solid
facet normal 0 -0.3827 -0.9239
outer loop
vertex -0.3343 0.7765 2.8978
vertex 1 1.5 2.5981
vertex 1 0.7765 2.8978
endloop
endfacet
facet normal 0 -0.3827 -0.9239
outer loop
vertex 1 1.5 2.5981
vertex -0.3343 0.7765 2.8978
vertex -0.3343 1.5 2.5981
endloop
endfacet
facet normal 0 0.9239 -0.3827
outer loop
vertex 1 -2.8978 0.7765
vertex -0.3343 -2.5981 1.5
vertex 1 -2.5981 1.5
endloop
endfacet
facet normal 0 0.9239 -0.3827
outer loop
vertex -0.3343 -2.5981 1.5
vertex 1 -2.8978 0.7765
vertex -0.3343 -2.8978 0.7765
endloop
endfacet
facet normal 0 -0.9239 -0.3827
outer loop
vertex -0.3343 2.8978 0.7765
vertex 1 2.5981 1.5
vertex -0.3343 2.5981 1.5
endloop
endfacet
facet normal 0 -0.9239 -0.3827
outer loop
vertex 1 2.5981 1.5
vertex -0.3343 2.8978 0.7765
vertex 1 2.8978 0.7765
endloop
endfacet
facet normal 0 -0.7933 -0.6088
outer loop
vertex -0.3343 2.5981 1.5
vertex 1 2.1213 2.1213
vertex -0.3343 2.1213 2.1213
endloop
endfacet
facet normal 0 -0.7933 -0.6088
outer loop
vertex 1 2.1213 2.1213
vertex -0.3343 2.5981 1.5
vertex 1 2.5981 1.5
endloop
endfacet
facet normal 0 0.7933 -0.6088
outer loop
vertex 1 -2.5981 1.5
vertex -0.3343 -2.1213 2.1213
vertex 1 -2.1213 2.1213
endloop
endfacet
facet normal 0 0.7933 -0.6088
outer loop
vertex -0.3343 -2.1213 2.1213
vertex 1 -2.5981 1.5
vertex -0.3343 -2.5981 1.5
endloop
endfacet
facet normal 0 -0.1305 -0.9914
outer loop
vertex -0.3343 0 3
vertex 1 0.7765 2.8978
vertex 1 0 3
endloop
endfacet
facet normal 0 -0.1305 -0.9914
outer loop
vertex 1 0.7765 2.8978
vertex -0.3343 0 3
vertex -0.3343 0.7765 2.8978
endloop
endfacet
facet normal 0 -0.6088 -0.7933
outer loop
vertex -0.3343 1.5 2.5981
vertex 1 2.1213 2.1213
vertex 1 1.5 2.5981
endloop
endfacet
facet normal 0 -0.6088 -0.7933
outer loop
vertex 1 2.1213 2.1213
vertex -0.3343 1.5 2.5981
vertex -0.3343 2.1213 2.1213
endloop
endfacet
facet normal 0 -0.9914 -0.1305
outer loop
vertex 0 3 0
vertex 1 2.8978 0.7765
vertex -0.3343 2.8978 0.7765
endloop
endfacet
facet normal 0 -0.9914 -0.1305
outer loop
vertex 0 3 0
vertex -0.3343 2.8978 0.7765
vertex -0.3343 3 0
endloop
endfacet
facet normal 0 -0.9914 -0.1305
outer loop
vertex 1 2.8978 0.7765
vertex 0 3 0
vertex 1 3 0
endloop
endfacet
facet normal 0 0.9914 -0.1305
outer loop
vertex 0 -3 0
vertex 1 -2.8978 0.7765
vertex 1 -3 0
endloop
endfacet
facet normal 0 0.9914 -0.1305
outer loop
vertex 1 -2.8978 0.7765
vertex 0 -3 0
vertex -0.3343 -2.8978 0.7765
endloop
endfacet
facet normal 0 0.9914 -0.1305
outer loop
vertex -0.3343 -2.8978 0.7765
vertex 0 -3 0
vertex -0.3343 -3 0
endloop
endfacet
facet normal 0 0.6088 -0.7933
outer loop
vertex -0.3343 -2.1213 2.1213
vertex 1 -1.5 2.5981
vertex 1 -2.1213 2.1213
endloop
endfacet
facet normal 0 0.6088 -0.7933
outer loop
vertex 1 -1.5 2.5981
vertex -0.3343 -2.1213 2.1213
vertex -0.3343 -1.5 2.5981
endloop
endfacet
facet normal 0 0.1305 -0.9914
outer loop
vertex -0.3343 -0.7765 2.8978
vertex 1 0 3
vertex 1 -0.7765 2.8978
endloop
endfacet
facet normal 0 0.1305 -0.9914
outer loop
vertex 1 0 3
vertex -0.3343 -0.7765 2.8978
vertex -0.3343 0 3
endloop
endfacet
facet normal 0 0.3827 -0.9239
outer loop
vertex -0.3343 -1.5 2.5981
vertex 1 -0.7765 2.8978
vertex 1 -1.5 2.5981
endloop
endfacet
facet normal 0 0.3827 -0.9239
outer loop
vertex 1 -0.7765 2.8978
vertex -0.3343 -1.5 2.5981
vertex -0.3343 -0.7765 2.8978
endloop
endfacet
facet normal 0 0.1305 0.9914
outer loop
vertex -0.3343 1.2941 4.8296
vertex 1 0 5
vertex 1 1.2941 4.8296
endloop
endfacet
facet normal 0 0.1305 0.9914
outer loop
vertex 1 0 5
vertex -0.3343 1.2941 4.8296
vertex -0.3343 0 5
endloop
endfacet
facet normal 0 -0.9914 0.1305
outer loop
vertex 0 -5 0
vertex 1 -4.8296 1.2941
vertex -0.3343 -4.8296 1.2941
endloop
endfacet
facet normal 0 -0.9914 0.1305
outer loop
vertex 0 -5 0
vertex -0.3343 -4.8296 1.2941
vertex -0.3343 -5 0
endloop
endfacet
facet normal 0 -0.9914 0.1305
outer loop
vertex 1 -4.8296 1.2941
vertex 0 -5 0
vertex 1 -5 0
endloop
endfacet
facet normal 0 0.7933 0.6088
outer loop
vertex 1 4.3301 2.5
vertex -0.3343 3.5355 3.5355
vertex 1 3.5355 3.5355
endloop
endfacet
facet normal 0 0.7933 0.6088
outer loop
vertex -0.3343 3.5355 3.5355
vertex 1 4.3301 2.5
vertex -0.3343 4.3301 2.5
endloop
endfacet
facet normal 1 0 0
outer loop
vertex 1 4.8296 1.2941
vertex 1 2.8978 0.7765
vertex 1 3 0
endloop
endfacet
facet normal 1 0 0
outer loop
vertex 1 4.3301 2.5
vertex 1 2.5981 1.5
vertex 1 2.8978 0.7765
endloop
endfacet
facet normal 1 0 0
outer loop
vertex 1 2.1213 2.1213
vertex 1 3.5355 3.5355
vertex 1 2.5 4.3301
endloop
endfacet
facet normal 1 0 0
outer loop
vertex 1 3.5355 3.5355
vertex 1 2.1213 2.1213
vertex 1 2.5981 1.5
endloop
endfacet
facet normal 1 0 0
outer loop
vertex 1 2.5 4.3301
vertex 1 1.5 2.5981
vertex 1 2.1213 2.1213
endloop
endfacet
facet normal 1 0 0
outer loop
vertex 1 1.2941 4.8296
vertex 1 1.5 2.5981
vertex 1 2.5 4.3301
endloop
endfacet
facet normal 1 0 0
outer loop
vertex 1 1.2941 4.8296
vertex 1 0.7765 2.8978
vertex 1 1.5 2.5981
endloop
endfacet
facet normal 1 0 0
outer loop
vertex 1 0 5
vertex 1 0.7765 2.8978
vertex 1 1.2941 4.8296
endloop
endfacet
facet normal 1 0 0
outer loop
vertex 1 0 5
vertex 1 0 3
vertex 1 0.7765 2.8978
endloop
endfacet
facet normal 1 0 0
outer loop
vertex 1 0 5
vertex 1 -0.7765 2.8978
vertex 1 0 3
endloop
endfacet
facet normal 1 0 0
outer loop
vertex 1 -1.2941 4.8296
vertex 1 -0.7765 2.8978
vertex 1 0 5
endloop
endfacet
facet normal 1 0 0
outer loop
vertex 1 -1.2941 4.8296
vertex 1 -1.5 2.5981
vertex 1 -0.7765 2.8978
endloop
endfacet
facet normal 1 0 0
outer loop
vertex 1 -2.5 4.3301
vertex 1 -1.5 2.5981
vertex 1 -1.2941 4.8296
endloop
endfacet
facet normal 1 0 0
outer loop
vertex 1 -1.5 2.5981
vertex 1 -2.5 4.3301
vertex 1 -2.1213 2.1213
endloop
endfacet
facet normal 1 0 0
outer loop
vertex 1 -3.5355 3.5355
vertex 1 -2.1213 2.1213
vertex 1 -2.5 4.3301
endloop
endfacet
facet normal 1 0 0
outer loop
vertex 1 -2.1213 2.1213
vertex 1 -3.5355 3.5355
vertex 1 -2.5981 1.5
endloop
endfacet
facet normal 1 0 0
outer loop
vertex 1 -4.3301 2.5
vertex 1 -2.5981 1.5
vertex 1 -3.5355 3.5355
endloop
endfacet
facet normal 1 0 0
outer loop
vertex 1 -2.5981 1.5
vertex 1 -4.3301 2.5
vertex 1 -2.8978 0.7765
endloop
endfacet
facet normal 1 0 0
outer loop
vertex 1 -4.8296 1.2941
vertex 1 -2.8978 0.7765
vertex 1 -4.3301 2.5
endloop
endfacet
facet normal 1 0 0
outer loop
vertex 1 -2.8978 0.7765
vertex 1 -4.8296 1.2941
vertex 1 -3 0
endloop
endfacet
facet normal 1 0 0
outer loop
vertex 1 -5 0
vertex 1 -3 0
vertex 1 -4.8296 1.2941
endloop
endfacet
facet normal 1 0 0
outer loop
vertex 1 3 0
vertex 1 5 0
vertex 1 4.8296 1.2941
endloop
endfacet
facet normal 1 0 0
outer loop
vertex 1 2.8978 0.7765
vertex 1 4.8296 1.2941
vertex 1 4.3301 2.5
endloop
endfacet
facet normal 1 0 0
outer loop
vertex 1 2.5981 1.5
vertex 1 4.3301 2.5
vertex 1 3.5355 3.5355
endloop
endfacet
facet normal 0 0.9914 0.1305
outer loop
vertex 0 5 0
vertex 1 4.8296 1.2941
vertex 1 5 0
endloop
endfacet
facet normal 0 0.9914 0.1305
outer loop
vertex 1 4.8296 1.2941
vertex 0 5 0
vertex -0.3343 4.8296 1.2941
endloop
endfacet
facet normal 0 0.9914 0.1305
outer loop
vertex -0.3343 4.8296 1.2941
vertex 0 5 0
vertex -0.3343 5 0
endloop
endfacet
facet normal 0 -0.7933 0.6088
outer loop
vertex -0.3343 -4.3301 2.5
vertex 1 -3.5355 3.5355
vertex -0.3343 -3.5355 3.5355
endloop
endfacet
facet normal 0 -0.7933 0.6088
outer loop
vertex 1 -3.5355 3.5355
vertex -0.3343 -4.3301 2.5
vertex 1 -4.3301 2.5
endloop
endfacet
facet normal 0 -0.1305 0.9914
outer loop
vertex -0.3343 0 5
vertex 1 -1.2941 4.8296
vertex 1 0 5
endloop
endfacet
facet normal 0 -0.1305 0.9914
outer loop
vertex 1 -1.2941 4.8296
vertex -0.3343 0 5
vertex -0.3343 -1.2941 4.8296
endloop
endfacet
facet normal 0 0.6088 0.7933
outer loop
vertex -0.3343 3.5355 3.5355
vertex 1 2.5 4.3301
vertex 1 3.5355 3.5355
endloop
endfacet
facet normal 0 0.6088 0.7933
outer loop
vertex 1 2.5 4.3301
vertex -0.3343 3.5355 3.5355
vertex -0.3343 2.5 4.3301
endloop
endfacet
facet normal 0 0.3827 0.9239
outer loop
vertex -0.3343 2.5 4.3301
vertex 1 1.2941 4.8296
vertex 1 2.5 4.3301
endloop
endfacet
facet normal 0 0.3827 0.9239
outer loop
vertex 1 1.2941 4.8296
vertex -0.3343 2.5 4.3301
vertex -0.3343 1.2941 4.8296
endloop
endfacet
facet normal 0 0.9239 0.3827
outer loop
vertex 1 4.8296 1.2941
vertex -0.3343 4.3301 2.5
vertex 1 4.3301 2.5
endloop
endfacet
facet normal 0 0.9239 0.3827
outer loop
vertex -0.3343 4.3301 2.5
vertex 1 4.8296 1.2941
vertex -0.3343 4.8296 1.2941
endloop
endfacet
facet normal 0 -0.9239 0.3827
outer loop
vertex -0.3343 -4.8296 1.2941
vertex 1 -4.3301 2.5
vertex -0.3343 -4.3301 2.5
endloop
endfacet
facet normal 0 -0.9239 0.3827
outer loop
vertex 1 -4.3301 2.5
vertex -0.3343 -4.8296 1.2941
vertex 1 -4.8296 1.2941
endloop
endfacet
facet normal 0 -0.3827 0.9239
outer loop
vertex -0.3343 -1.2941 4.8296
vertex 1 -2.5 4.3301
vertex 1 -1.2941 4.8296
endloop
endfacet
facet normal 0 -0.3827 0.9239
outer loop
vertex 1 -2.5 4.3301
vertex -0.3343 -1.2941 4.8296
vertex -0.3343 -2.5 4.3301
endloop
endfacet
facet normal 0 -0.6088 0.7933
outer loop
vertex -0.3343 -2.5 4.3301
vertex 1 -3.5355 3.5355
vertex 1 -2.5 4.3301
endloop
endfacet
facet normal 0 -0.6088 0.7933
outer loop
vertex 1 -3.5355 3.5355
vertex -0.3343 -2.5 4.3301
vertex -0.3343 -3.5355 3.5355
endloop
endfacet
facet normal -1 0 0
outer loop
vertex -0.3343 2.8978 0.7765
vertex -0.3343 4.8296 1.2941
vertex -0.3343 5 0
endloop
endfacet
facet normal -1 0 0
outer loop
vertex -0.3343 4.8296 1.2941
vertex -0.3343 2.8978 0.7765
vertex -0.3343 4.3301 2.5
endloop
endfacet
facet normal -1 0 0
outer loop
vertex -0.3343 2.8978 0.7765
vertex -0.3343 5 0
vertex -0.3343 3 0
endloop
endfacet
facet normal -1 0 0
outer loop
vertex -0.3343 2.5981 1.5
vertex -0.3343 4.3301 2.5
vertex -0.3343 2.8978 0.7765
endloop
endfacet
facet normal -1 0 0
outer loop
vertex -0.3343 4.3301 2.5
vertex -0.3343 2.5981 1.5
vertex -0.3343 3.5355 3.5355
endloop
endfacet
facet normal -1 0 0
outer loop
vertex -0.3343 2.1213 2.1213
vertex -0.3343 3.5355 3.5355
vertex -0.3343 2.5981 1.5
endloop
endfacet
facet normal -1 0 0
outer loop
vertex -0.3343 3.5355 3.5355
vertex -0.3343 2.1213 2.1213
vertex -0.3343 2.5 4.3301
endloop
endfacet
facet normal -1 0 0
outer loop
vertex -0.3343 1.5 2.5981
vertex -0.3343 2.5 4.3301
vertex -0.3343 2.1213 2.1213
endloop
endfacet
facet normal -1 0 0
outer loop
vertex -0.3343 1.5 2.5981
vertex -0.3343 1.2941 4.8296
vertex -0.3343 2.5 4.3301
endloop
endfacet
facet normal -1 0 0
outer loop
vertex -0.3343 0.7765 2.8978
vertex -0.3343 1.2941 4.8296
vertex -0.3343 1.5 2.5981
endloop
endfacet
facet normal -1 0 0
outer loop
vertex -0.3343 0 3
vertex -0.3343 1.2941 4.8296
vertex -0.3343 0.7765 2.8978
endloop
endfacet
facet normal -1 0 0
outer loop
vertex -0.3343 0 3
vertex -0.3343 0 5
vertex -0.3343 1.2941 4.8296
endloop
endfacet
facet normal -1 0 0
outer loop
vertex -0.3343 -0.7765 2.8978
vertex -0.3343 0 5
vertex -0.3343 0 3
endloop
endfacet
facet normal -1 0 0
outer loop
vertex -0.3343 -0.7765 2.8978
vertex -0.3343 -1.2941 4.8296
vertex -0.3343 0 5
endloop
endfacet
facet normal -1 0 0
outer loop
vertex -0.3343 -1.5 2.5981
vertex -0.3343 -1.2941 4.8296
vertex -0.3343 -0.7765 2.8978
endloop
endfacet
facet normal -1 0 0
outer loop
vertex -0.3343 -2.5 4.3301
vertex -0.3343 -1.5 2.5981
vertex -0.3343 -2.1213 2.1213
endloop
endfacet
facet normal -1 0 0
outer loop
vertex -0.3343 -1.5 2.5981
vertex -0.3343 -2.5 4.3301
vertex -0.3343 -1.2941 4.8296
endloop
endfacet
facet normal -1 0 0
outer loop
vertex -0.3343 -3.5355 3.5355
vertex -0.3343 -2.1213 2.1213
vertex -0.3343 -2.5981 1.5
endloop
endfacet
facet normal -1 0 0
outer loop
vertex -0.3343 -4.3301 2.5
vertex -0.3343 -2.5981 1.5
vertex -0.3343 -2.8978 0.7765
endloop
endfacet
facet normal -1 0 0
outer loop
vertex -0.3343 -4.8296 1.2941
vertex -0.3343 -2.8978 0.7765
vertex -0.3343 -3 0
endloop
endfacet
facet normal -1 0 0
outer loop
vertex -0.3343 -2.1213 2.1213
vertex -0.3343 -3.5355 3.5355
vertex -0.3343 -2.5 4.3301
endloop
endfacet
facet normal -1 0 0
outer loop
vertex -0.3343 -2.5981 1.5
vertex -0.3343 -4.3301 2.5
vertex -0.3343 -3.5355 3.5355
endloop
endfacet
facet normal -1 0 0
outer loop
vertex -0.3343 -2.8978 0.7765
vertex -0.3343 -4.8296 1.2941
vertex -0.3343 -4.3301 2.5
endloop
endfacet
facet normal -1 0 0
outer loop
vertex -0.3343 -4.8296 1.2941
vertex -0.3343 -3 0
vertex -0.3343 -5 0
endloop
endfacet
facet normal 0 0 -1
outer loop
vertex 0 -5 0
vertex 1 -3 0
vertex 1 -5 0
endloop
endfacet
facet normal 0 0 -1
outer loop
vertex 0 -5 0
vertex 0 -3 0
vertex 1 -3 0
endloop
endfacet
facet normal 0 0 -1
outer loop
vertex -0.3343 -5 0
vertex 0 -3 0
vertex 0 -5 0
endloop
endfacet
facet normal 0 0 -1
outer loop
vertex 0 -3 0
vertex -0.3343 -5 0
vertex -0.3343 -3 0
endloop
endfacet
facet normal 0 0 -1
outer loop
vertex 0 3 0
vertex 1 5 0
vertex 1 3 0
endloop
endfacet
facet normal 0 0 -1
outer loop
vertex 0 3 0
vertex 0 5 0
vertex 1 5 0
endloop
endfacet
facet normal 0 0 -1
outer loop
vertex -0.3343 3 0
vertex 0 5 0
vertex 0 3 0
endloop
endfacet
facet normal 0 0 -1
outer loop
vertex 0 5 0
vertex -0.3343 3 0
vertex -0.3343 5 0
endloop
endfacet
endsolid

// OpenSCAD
// file: ../build_environments.scad
// build_environments.scad: modules to build level sections
//

module pool(diameter=10.0, wall_height=2.0, step_width=3.0, connections=[])
{
    difference() {
        union() {
        difference() {
            cylinder(h=0.5,r1=diameter+step_width,r2=diameter+step_width,$fn=48);
            translate([0,0,-0.1])
                cylinder(h=0.7,r1=diameter,r2=diameter,$fn=48);
        }
        difference() {
            cylinder(h=wall_height,r1=diameter+step_width+1.0,r2=diameter+step_width+1.0,$fn=48);
            translate([0,0,-0.1])
                cylinder(h=wall_height+0.2,r1=diameter+step_width,r2=diameter+step_width,$fn=48);
        }
        }
    
        for (c = connections)
        {
            rotate([0,90,0]) {
                angle = atan2(c[1],c[0]);
                rotate([-angle,0,0]) {
                    cylinder(h=diameter+5.0,r1=c[2],r2=c[2],$fn=48);
                }
            }
        }
    }
}

module straight(length=10.0, width=2.0, dy1=0.0, dy2=0.0, dz=0.0)
{
    dims = [0, 0, 0, 0, 0, (dz/length)];
    matrix = [
        [ 1, dims[0], dims[1], 0 ],
        [ dims[2], 1, dims[4], 0 ],
        [ dims[5], dims[3], 1, 0 ],
        [ 0, 0, 0, 1 ]
    ];
    multmatrix(matrix)
    difference() {
        translate([dy1,0,0])
        union() {
            rotate([0,90,0]) {
                difference() {
                    cylinder(h=(length-dy1-dy2),r1=width+1.0,r2=width+1.0,$fn=24);
                    translate([0,0,-0.1])
                        cylinder(h=(length-dy1-dy2+0.2),r1=width,r2=width,$fn=24);
                }
                difference() {
                    cylinder(h=1.0,r1=width+2.0,r2=width+2.0,$fn=24);
                    translate([0,0,-0.1])
                        cylinder(h=1.2,r1=width,r2=width,$fn=24);
                }
                translate([0,0,(length-dy1-dy2)-1.0]) {
                    difference() {
                        cylinder(h=1.0,r1=width+2.0,r2=width+2.0,$fn=24);
                        translate([0,0,-0.1])
                            cylinder(h=1.2,r1=width,r2=width,$fn=24);
                    }
                }
            }
        }
        translate([0,0,-(2*width+4.0)/2])
            cube([3*length,3*length,2*width+4.0],center=true);
    }
}

module curve(p0=[0,0], center=[0,0], dir=1, angle=0.0, width=2.0)
{
    radius = sqrt((p0[0]-center[0])*(p0[0]-center[0]) + (p0[1]-center[1])*(p0[1]-center[1]));
    if (dir == 0) {
        difference() {
            rotate([0,0,-90])
            difference() {
                rotate_extrude(angle = angle, convexity = 10, $fn=32)
                    translate([radius, 0, 0])
                        circle(r = width+1.0,$fn=24);
                rotate([0,0,-1.0])
                    rotate_extrude(angle = angle+2.0, convexity = 10, $fn=32)
                        translate([radius, 0, 0])
                            circle(r = width,$fn=24);
            }
            translate([0,0,-(2*width+4.0)/2])
                cube([5*radius,5*radius,2*width+4.0],center=true);
        }
    }
    else {
        difference() {
            rotate([0,0,90])
            difference() {
                rotate_extrude(angle = -angle, convexity = 10, $fn=32)
                    translate([radius, 0, 0])
                        circle(r = width+1.0,$fn=24);
                rotate([0,0,1.0])
                    rotate_extrude(angle = -angle-2.0, convexity = 10, $fn=32)
                        translate([radius, 0, 0])
                            circle(r = width,$fn=24);
            }
            translate([0,0,-(2*width+4.0)/2])
                cube([5*radius,5*radius,2*width+4.0],center=true);
        }
    }

}

// test pool
//pool(diameter=12.0000, wall_height=3.0000, step_width=3.0000, connections=[[0.0000,-26.0000,2.0000], [23.6074,0.0000,2.0000]]);

// test straight, slope
//straight(length=26.0000, width=2.0000, dy1=11.8322, dy2=6.7082, dz=0.0000);
//straight(length=29.1549, width=12.0000, dy1=0.0000, dy2=0.0000, dz=-15.0000);

// test curve
//curve(p0=[23.6074, 0.0000], center=[23.6074, 5.0000], dir=0, angle=60.1011, width=2.0000);
//curve(p0=[33.6426, 12.4219], center=[37.9771, 9.9295], dir=1, angle=120.4627, width=2.0000);
// main file
use <../build_environments.scad>;
straight(length=10.2051, width=3.0000, dy1=0.0000, dy2=9.5394, dz=0.0000);
